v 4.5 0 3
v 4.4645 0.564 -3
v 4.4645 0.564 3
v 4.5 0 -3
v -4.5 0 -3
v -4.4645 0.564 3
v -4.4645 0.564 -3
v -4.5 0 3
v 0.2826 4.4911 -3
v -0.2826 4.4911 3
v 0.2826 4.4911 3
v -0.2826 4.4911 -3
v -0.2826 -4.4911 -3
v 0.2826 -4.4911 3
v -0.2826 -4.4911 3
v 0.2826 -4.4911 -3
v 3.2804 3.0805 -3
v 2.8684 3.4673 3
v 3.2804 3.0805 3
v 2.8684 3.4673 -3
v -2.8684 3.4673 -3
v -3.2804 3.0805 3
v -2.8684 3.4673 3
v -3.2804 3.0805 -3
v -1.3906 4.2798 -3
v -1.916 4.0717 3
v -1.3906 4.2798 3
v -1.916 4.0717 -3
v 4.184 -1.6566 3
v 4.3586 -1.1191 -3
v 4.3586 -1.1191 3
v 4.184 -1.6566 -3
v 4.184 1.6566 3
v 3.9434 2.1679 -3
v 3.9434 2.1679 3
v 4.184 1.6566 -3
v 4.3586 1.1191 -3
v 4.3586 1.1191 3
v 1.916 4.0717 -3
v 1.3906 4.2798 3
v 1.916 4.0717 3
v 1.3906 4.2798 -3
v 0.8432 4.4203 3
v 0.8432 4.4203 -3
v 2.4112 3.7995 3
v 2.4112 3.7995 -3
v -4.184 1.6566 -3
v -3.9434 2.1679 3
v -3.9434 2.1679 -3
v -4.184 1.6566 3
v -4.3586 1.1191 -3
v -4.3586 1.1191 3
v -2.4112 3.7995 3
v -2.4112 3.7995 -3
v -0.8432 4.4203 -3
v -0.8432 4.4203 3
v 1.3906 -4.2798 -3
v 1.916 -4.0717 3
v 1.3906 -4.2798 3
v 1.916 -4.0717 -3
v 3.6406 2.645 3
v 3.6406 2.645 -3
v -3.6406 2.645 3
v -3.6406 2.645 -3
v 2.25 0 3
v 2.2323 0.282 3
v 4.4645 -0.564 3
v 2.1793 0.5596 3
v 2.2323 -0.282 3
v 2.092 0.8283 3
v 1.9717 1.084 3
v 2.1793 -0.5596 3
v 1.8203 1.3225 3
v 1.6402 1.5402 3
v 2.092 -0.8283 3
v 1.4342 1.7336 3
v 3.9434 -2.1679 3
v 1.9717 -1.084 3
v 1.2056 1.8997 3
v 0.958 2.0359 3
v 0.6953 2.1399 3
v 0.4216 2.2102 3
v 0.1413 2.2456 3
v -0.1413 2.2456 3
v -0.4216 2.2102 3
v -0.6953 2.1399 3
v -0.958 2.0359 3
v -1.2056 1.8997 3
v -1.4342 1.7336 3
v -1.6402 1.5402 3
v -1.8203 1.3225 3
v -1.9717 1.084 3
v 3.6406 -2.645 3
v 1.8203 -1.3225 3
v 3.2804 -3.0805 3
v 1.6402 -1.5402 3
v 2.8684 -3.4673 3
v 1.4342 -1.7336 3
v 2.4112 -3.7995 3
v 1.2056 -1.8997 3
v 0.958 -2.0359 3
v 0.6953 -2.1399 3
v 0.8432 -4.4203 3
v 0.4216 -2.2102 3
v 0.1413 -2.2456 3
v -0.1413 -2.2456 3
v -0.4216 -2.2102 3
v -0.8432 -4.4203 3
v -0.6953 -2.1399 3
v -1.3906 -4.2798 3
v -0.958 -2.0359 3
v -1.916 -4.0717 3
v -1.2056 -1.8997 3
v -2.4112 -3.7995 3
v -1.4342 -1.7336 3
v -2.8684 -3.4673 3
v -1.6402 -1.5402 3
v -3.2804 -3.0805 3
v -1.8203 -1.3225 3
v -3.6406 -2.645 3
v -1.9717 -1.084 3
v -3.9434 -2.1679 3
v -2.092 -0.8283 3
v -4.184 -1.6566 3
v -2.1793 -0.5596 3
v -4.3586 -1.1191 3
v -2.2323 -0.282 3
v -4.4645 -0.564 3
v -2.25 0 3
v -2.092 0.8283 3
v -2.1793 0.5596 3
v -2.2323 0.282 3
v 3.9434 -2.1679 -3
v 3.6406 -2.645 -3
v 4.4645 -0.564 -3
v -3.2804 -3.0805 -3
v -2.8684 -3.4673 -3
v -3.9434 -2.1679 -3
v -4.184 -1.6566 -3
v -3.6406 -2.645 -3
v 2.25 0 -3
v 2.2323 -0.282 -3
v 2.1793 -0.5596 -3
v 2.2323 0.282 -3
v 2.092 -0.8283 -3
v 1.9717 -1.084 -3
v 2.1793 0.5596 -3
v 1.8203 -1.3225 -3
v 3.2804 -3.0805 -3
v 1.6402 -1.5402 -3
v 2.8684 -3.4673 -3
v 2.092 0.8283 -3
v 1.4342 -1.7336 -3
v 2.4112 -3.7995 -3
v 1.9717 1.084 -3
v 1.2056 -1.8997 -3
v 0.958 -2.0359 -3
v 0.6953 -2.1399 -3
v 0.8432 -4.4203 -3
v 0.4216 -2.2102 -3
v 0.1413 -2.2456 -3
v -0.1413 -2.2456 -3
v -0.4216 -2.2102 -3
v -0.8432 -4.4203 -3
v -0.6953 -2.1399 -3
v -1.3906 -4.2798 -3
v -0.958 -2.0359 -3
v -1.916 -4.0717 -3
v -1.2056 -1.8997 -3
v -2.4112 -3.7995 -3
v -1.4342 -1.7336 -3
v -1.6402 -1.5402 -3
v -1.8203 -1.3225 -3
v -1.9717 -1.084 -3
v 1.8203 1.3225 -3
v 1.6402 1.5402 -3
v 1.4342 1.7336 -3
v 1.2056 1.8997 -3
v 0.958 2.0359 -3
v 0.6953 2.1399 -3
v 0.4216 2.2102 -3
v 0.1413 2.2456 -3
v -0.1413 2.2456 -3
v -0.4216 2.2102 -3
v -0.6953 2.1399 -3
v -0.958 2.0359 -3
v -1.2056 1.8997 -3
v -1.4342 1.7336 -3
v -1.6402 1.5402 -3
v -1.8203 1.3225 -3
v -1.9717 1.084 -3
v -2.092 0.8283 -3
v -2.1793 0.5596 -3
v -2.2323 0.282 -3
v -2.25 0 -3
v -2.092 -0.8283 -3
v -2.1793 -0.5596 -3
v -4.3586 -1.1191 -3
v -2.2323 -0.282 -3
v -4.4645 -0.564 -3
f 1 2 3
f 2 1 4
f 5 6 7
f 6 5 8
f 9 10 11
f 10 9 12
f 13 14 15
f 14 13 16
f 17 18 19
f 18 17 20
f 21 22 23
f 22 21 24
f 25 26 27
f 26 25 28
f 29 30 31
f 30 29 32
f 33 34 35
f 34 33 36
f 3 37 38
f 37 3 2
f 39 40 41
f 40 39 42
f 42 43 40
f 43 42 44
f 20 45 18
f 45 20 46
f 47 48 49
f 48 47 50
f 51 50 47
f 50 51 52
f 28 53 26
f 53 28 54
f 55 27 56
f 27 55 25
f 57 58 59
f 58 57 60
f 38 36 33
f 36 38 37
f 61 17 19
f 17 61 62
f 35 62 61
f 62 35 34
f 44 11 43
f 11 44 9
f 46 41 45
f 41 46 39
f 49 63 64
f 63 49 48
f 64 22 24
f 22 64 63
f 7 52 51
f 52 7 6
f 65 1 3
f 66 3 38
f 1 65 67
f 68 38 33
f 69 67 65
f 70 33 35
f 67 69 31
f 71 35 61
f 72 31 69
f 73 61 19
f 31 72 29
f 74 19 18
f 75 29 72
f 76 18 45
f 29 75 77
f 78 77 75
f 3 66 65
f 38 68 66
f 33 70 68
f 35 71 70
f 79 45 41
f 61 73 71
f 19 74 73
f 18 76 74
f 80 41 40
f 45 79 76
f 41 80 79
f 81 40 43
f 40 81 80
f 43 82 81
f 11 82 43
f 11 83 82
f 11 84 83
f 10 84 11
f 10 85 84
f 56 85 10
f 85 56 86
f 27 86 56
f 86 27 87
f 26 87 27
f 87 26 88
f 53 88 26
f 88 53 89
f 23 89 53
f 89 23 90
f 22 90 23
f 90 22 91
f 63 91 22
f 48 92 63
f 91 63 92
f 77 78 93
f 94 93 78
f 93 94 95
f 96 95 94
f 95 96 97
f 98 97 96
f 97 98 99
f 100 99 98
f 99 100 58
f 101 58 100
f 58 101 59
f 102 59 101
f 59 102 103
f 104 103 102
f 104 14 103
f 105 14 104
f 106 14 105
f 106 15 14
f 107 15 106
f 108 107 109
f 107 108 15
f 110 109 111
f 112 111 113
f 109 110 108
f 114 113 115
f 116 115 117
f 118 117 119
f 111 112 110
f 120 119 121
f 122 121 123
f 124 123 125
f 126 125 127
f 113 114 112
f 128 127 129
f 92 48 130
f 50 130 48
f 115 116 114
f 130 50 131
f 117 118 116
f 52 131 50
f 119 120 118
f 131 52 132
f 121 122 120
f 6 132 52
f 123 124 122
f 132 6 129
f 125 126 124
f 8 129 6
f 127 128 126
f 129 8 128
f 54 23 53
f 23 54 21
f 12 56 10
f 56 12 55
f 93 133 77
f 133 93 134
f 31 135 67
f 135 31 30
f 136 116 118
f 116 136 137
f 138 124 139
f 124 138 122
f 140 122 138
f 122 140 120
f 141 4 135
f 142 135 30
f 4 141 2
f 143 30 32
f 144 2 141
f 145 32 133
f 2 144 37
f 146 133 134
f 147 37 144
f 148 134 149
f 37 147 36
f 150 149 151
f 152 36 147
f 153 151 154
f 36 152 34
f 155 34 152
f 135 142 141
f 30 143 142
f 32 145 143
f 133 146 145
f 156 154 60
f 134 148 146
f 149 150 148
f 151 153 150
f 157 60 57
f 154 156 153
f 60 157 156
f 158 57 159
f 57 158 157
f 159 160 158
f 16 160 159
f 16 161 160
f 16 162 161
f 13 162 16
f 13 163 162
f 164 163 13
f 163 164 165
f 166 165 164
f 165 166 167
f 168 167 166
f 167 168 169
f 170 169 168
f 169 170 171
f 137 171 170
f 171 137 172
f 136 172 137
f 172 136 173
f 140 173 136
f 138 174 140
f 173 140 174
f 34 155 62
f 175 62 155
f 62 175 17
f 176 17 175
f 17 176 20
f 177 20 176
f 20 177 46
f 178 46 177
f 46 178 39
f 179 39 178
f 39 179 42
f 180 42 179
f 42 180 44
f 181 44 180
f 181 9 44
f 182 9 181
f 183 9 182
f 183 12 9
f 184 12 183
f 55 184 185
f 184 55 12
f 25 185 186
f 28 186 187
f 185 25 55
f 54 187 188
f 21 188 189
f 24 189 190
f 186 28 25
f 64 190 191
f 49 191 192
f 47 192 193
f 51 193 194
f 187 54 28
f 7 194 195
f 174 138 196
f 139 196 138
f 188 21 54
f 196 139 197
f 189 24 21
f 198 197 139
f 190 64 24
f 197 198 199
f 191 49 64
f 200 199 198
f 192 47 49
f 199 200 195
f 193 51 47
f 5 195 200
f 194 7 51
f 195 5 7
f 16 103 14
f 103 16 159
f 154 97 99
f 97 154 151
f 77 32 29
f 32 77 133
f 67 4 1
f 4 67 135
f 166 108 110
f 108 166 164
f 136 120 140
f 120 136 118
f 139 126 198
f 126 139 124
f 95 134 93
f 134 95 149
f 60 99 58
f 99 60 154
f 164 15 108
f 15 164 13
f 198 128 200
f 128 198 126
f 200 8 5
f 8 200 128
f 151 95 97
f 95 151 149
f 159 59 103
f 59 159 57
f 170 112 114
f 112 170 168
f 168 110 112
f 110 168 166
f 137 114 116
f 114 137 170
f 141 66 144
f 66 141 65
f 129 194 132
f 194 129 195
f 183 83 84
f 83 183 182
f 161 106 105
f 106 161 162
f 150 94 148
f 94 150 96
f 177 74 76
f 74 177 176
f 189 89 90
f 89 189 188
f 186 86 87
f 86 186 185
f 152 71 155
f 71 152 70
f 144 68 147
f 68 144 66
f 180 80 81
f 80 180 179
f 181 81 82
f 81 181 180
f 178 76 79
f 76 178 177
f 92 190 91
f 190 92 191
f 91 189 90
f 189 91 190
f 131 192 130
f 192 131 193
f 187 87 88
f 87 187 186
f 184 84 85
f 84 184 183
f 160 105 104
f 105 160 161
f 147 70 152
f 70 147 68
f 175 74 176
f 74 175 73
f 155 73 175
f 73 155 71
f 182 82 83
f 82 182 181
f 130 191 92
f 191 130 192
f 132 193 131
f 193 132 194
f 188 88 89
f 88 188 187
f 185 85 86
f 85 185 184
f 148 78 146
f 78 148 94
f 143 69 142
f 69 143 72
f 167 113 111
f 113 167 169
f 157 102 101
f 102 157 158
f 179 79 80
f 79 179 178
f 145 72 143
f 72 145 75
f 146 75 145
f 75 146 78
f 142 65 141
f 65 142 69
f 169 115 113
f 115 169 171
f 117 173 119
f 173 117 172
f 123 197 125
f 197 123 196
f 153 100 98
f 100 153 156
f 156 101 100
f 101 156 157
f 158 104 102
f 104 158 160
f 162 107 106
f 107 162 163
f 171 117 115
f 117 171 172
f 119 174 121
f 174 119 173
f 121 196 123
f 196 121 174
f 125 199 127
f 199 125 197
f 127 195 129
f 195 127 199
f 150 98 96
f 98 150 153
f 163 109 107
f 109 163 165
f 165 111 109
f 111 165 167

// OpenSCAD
$fn = 50;


difference() {
	union() {
		translate(v = [0, 0, -3.0000000000]) {
			cylinder(h = 6, r = 4.5000000000);
		}
	}
	union() {
		translate(v = [0, 0, -100.0000000000]) {
			cylinder(h = 200, r = 2.2500000000);
		}
	}
}
